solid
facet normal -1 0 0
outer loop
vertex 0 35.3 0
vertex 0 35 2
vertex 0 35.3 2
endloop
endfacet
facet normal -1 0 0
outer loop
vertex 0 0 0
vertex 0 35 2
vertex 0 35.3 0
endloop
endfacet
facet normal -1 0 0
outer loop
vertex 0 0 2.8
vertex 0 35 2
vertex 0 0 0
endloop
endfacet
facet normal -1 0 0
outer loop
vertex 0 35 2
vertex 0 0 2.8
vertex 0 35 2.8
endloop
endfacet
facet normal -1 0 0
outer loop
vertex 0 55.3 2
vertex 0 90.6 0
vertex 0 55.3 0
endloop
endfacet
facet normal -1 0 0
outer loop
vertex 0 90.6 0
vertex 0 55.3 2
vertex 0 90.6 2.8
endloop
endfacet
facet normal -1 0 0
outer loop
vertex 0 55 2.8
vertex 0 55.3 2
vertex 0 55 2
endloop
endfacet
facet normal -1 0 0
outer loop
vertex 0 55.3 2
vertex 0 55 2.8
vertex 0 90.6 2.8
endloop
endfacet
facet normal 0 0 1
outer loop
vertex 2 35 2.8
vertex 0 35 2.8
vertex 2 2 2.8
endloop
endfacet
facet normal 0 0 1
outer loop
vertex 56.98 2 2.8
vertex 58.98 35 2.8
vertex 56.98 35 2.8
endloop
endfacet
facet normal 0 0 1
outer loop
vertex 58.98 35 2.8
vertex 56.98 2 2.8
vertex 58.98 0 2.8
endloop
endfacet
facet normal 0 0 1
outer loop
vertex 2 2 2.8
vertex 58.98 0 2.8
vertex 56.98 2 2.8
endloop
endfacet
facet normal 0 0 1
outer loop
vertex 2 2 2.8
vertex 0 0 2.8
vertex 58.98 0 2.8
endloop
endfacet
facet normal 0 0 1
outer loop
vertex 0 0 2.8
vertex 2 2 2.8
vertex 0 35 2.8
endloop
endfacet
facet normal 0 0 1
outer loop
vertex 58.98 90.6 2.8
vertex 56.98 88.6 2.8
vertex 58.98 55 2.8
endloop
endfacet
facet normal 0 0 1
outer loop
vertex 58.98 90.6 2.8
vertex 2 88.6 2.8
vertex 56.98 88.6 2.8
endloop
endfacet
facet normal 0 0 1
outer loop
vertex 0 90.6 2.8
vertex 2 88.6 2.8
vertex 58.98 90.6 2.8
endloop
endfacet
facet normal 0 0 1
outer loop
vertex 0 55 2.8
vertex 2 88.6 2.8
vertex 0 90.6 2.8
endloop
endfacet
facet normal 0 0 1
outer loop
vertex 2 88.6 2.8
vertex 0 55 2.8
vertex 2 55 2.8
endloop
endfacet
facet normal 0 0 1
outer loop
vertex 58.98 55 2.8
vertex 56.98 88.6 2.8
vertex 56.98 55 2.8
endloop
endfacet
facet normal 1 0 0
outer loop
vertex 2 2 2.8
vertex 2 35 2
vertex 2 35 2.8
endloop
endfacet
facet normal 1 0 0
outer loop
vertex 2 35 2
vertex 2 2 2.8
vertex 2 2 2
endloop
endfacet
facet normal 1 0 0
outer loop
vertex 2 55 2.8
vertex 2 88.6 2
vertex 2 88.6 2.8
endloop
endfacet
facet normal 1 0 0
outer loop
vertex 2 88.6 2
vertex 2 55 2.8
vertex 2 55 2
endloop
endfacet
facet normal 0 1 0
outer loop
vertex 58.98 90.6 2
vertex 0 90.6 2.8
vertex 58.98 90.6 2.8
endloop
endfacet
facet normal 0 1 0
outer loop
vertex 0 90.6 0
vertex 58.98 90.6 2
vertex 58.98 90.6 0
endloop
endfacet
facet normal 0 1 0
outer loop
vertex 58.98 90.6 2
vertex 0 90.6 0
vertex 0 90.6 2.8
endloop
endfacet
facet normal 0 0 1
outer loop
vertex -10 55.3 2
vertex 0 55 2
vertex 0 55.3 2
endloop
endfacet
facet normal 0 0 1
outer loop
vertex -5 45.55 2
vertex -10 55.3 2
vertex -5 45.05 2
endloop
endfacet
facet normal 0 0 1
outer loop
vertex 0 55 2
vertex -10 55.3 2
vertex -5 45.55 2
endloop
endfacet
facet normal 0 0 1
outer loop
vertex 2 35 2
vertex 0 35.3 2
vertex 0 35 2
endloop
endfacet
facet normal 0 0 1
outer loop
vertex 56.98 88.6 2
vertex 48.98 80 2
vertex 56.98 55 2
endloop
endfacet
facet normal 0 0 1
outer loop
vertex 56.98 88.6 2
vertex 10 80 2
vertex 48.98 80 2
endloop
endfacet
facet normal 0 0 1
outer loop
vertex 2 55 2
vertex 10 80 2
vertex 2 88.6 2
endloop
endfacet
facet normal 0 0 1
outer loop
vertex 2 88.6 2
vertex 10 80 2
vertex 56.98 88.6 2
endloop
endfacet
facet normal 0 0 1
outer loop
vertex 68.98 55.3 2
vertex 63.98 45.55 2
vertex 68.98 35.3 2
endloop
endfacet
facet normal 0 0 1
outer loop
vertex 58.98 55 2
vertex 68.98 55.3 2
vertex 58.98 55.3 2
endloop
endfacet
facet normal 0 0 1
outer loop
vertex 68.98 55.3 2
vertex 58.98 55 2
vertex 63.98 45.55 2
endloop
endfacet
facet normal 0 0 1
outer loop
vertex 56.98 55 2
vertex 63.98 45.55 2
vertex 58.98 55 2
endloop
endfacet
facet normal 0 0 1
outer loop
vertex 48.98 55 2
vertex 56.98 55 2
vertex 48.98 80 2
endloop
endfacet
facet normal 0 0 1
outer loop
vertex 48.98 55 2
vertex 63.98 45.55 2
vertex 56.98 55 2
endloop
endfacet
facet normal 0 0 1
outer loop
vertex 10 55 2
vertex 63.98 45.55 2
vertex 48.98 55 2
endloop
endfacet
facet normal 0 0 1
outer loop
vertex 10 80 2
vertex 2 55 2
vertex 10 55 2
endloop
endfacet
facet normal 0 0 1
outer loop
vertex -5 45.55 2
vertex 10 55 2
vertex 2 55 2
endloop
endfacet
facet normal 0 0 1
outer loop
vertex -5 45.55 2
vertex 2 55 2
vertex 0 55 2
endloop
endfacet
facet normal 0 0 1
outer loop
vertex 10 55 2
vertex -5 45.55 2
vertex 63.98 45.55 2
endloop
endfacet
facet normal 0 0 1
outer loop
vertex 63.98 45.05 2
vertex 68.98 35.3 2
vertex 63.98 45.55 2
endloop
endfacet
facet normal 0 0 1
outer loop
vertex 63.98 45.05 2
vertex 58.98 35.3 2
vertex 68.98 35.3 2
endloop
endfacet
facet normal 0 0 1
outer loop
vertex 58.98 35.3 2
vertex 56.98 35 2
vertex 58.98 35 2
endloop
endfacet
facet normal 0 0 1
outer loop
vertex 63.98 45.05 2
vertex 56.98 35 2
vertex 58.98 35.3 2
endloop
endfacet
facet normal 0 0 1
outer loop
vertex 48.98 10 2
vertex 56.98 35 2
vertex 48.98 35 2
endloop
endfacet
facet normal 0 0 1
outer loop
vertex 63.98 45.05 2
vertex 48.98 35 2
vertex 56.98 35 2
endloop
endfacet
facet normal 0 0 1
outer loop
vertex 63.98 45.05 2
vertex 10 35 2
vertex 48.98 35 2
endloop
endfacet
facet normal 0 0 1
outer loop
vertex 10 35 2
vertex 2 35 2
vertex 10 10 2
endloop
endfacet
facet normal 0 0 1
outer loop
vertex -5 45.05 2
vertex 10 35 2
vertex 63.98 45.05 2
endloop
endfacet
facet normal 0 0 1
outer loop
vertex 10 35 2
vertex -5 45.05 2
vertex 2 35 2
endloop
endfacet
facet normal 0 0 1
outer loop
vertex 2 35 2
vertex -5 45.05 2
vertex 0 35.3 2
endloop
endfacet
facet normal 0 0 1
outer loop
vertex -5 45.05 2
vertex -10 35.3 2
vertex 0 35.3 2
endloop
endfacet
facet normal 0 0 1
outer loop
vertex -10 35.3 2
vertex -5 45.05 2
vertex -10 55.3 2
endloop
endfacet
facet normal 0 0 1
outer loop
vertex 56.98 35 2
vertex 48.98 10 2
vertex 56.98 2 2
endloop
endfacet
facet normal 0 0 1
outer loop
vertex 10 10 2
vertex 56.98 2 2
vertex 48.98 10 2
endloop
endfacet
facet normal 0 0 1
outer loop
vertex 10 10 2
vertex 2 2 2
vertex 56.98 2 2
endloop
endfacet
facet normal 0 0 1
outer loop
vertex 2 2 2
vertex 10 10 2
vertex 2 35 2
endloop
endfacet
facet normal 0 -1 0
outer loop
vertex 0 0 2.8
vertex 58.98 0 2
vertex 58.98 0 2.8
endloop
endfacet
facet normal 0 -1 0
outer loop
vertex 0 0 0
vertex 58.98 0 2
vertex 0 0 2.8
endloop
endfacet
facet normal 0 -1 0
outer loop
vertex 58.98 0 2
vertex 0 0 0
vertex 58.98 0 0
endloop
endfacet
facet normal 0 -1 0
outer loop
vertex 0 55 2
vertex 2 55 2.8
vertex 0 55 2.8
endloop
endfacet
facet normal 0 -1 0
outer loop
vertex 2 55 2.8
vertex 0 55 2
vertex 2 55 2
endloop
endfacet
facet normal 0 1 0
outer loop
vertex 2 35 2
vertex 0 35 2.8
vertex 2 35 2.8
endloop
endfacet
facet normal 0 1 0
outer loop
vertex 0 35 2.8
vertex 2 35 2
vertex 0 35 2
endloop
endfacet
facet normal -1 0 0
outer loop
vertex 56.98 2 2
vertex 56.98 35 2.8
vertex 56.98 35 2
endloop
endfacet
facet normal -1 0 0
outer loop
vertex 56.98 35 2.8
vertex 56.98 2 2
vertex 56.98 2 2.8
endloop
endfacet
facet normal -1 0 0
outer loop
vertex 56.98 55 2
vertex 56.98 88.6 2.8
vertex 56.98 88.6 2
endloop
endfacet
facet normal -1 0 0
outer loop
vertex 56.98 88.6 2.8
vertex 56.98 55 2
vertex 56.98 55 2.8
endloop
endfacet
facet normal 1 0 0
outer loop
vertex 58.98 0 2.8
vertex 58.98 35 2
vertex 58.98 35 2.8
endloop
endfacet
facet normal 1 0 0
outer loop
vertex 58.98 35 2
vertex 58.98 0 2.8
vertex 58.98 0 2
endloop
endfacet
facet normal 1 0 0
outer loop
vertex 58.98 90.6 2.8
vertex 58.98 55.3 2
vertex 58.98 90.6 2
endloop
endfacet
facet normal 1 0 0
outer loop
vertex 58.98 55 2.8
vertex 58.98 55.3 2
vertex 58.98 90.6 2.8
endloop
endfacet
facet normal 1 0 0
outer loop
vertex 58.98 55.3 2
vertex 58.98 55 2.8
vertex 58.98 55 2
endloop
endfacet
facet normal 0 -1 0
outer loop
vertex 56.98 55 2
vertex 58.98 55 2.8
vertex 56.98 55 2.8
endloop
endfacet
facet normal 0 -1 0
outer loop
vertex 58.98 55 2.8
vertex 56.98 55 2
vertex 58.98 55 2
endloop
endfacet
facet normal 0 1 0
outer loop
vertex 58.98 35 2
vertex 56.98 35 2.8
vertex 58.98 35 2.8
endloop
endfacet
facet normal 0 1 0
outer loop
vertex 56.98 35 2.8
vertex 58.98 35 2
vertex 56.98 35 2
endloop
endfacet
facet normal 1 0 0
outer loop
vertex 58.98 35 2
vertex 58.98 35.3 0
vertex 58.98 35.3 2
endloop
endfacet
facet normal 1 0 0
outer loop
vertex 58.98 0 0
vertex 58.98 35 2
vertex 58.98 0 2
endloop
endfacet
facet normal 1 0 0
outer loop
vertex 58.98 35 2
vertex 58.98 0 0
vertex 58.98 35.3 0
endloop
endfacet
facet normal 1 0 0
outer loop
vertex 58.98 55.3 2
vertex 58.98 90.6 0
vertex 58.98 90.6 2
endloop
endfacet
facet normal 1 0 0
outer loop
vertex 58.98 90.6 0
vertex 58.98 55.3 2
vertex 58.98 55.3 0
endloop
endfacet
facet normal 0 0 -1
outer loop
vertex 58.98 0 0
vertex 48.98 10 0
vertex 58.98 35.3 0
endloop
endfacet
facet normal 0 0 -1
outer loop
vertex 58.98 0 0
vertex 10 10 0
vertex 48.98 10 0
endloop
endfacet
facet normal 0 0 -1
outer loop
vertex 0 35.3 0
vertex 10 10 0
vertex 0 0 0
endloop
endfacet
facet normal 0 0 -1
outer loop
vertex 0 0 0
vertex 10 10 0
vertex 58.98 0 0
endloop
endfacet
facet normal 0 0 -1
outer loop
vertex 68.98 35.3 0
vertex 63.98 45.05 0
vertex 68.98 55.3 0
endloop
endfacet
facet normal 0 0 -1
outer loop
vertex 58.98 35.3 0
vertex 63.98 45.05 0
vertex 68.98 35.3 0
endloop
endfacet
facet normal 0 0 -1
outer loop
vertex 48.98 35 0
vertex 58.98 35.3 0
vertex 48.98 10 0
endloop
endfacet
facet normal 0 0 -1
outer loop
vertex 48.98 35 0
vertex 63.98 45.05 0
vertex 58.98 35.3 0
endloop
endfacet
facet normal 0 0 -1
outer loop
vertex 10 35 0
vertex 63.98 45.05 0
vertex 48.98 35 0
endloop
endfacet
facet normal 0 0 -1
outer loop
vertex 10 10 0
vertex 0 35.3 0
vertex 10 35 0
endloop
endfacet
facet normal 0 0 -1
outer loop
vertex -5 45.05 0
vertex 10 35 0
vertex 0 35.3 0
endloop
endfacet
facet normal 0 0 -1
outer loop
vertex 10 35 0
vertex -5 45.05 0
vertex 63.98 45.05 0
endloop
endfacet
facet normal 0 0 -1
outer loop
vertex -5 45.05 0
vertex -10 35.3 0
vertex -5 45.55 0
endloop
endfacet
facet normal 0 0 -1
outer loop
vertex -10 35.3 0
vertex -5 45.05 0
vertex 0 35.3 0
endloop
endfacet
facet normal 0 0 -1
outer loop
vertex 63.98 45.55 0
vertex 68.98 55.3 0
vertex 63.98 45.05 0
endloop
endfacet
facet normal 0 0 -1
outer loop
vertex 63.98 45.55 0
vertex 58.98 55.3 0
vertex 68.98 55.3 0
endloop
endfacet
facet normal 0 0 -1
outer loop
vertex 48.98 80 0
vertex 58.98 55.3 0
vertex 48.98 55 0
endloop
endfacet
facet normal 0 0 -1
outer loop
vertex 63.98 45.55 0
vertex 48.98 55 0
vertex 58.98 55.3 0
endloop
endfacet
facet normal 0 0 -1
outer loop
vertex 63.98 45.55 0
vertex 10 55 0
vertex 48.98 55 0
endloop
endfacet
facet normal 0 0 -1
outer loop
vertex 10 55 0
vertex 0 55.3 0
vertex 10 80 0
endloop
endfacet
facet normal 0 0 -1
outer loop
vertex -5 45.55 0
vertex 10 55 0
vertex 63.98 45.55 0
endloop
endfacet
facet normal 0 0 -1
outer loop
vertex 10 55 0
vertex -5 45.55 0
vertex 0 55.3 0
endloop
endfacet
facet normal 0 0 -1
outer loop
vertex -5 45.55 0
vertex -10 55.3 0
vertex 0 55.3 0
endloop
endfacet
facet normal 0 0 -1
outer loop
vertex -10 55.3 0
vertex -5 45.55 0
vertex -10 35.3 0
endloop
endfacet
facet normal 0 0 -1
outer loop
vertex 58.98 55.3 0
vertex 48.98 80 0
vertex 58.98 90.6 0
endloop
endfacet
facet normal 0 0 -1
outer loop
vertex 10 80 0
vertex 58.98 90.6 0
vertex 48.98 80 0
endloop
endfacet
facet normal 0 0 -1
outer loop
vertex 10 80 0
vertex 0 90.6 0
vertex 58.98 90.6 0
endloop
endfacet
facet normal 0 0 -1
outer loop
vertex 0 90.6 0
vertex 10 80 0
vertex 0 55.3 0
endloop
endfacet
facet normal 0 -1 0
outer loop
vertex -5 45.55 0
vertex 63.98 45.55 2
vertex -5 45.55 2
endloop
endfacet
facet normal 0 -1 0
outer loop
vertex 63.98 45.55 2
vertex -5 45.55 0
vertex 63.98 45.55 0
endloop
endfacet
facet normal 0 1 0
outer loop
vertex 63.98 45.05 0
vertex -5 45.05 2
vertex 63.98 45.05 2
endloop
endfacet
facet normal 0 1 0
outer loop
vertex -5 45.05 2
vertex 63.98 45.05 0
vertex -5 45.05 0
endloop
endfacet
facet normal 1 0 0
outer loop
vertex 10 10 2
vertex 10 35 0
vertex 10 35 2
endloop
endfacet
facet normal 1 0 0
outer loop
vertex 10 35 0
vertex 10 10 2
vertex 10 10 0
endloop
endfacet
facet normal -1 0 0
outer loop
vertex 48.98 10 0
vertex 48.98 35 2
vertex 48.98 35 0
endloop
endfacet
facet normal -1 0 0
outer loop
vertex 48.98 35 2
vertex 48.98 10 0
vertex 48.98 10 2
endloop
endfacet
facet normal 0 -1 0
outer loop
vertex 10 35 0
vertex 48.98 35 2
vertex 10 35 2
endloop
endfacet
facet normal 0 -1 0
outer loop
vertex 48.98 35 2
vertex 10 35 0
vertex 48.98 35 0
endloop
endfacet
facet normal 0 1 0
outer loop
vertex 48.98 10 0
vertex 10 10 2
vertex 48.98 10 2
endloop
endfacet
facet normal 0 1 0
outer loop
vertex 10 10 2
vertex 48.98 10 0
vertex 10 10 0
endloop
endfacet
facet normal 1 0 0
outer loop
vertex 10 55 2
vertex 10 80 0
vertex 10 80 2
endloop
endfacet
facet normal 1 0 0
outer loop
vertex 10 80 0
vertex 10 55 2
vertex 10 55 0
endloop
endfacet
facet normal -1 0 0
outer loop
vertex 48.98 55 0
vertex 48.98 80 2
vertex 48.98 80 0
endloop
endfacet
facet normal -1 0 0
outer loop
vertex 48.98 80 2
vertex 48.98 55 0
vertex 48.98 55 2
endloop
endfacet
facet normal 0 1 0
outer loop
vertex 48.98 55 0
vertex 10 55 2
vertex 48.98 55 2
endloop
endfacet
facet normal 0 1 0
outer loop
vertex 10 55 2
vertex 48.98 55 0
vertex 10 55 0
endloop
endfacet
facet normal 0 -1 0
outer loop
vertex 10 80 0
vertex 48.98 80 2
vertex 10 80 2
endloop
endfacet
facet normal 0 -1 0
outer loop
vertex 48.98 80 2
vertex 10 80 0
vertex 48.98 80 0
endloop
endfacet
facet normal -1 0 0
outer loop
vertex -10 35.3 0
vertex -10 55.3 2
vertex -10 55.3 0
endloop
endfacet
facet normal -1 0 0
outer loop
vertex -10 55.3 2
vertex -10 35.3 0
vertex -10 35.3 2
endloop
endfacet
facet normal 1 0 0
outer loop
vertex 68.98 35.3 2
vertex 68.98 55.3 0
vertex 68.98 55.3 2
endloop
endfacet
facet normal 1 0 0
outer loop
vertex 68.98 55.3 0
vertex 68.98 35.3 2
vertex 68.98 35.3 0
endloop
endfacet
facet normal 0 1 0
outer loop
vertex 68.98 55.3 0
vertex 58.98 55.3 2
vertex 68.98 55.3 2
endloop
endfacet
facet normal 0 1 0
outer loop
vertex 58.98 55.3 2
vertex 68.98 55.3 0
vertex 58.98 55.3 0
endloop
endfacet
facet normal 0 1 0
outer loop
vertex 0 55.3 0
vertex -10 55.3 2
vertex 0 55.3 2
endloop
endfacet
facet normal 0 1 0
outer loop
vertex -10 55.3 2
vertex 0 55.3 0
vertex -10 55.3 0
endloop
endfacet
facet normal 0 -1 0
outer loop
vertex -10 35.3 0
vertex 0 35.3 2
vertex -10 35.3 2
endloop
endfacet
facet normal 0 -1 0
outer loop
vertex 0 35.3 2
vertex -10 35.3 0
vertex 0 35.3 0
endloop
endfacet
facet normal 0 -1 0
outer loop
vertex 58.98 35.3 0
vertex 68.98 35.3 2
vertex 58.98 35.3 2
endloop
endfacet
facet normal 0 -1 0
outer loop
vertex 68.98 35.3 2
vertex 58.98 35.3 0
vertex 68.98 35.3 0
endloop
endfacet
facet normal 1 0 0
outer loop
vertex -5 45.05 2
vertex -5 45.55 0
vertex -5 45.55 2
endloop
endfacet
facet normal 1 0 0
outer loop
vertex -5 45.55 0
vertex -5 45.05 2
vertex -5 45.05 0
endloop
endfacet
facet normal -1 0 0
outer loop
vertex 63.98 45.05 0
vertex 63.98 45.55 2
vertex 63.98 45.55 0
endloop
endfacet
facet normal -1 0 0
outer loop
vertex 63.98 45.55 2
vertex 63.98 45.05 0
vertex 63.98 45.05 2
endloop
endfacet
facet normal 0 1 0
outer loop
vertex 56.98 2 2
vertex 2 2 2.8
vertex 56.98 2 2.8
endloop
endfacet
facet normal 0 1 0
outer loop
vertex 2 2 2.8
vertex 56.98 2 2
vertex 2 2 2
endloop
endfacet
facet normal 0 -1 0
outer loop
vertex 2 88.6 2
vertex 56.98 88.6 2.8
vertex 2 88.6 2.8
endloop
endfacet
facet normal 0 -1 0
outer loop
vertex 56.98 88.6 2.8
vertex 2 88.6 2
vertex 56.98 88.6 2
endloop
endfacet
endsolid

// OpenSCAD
id_card_width = 53.98;
id_card_length = 85.60;
id_card_thickness = 0.8;

height = 0.8;
padding = 0.5;
slit_thickness = 0.5;

jig_thickness = 2;
jig_width = id_card_width + ( 2 * (jig_thickness + padding) );
jig_length = id_card_length + ( 2 * (jig_thickness + padding) );

extension_width = 20;

display_card = false;
card_half = false;


module ID_card() {
    if (card_half) {
        cube([id_card_width, id_card_length / 2, id_card_thickness]);
    } else {
        cube([id_card_width, id_card_length, id_card_thickness]);
    }
}

module jig_base() {
    difference() {
        cube([jig_width, jig_length, jig_thickness]);
        
        translate([0 , (jig_length - slit_thickness) / 2, 0]) {
            cube([jig_width, slit_thickness, 10]);
        }
        
        translate([10, 10, 0]) {
            cube([jig_width - 20, 25, 10]);
        }
        
        translate([10, 55, 0]) {
            cube([jig_width - 20, 25, 10]);
        }
    }
    
    
        slit_extension();
    
}

module slit_extension() {
    difference() {
        translate([-10, jig_length / 2 - extension_width / 2, 0]) {
            cube([jig_width + extension_width, extension_width, jig_thickness]);
        }
        
        translate([0, jig_length / 2 - extension_width / 2, 0]) {
            cube([jig_width, 20, 10]);
        }
        
        translate([-5 , (jig_length-slit_thickness ) /2, -5]) {
            cube([jig_width+10, slit_thickness, 10]);
        }
    }
}

module jig_top() {
    cube([jig_width, jig_thickness, height]);
}

module jig_side() {
    difference() {
        cube([jig_thickness, jig_length, height]);
        
        translate([0, 35, 0]) {
            cube([10, 20, 10]);
        }
    }
}




module jig() {
    translate([0,0,0]) {
        jig_base();
    }
    
    if (display_card) {
        translate([jig_thickness + padding,jig_thickness + padding ,jig_thickness]) {
            ID_card();
        }
}
    
    translate([0,0,jig_thickness]) {
        jig_top();
    }
    
    translate([0, jig_length - jig_thickness, jig_thickness]) {
        jig_top();
    }
    
    translate([0,0,jig_thickness]) {
       jig_side();
    }
    
    translate([id_card_width + jig_thickness + (2 * padding), 0, jig_thickness]) {
        jig_side();
    }
}

jig();
